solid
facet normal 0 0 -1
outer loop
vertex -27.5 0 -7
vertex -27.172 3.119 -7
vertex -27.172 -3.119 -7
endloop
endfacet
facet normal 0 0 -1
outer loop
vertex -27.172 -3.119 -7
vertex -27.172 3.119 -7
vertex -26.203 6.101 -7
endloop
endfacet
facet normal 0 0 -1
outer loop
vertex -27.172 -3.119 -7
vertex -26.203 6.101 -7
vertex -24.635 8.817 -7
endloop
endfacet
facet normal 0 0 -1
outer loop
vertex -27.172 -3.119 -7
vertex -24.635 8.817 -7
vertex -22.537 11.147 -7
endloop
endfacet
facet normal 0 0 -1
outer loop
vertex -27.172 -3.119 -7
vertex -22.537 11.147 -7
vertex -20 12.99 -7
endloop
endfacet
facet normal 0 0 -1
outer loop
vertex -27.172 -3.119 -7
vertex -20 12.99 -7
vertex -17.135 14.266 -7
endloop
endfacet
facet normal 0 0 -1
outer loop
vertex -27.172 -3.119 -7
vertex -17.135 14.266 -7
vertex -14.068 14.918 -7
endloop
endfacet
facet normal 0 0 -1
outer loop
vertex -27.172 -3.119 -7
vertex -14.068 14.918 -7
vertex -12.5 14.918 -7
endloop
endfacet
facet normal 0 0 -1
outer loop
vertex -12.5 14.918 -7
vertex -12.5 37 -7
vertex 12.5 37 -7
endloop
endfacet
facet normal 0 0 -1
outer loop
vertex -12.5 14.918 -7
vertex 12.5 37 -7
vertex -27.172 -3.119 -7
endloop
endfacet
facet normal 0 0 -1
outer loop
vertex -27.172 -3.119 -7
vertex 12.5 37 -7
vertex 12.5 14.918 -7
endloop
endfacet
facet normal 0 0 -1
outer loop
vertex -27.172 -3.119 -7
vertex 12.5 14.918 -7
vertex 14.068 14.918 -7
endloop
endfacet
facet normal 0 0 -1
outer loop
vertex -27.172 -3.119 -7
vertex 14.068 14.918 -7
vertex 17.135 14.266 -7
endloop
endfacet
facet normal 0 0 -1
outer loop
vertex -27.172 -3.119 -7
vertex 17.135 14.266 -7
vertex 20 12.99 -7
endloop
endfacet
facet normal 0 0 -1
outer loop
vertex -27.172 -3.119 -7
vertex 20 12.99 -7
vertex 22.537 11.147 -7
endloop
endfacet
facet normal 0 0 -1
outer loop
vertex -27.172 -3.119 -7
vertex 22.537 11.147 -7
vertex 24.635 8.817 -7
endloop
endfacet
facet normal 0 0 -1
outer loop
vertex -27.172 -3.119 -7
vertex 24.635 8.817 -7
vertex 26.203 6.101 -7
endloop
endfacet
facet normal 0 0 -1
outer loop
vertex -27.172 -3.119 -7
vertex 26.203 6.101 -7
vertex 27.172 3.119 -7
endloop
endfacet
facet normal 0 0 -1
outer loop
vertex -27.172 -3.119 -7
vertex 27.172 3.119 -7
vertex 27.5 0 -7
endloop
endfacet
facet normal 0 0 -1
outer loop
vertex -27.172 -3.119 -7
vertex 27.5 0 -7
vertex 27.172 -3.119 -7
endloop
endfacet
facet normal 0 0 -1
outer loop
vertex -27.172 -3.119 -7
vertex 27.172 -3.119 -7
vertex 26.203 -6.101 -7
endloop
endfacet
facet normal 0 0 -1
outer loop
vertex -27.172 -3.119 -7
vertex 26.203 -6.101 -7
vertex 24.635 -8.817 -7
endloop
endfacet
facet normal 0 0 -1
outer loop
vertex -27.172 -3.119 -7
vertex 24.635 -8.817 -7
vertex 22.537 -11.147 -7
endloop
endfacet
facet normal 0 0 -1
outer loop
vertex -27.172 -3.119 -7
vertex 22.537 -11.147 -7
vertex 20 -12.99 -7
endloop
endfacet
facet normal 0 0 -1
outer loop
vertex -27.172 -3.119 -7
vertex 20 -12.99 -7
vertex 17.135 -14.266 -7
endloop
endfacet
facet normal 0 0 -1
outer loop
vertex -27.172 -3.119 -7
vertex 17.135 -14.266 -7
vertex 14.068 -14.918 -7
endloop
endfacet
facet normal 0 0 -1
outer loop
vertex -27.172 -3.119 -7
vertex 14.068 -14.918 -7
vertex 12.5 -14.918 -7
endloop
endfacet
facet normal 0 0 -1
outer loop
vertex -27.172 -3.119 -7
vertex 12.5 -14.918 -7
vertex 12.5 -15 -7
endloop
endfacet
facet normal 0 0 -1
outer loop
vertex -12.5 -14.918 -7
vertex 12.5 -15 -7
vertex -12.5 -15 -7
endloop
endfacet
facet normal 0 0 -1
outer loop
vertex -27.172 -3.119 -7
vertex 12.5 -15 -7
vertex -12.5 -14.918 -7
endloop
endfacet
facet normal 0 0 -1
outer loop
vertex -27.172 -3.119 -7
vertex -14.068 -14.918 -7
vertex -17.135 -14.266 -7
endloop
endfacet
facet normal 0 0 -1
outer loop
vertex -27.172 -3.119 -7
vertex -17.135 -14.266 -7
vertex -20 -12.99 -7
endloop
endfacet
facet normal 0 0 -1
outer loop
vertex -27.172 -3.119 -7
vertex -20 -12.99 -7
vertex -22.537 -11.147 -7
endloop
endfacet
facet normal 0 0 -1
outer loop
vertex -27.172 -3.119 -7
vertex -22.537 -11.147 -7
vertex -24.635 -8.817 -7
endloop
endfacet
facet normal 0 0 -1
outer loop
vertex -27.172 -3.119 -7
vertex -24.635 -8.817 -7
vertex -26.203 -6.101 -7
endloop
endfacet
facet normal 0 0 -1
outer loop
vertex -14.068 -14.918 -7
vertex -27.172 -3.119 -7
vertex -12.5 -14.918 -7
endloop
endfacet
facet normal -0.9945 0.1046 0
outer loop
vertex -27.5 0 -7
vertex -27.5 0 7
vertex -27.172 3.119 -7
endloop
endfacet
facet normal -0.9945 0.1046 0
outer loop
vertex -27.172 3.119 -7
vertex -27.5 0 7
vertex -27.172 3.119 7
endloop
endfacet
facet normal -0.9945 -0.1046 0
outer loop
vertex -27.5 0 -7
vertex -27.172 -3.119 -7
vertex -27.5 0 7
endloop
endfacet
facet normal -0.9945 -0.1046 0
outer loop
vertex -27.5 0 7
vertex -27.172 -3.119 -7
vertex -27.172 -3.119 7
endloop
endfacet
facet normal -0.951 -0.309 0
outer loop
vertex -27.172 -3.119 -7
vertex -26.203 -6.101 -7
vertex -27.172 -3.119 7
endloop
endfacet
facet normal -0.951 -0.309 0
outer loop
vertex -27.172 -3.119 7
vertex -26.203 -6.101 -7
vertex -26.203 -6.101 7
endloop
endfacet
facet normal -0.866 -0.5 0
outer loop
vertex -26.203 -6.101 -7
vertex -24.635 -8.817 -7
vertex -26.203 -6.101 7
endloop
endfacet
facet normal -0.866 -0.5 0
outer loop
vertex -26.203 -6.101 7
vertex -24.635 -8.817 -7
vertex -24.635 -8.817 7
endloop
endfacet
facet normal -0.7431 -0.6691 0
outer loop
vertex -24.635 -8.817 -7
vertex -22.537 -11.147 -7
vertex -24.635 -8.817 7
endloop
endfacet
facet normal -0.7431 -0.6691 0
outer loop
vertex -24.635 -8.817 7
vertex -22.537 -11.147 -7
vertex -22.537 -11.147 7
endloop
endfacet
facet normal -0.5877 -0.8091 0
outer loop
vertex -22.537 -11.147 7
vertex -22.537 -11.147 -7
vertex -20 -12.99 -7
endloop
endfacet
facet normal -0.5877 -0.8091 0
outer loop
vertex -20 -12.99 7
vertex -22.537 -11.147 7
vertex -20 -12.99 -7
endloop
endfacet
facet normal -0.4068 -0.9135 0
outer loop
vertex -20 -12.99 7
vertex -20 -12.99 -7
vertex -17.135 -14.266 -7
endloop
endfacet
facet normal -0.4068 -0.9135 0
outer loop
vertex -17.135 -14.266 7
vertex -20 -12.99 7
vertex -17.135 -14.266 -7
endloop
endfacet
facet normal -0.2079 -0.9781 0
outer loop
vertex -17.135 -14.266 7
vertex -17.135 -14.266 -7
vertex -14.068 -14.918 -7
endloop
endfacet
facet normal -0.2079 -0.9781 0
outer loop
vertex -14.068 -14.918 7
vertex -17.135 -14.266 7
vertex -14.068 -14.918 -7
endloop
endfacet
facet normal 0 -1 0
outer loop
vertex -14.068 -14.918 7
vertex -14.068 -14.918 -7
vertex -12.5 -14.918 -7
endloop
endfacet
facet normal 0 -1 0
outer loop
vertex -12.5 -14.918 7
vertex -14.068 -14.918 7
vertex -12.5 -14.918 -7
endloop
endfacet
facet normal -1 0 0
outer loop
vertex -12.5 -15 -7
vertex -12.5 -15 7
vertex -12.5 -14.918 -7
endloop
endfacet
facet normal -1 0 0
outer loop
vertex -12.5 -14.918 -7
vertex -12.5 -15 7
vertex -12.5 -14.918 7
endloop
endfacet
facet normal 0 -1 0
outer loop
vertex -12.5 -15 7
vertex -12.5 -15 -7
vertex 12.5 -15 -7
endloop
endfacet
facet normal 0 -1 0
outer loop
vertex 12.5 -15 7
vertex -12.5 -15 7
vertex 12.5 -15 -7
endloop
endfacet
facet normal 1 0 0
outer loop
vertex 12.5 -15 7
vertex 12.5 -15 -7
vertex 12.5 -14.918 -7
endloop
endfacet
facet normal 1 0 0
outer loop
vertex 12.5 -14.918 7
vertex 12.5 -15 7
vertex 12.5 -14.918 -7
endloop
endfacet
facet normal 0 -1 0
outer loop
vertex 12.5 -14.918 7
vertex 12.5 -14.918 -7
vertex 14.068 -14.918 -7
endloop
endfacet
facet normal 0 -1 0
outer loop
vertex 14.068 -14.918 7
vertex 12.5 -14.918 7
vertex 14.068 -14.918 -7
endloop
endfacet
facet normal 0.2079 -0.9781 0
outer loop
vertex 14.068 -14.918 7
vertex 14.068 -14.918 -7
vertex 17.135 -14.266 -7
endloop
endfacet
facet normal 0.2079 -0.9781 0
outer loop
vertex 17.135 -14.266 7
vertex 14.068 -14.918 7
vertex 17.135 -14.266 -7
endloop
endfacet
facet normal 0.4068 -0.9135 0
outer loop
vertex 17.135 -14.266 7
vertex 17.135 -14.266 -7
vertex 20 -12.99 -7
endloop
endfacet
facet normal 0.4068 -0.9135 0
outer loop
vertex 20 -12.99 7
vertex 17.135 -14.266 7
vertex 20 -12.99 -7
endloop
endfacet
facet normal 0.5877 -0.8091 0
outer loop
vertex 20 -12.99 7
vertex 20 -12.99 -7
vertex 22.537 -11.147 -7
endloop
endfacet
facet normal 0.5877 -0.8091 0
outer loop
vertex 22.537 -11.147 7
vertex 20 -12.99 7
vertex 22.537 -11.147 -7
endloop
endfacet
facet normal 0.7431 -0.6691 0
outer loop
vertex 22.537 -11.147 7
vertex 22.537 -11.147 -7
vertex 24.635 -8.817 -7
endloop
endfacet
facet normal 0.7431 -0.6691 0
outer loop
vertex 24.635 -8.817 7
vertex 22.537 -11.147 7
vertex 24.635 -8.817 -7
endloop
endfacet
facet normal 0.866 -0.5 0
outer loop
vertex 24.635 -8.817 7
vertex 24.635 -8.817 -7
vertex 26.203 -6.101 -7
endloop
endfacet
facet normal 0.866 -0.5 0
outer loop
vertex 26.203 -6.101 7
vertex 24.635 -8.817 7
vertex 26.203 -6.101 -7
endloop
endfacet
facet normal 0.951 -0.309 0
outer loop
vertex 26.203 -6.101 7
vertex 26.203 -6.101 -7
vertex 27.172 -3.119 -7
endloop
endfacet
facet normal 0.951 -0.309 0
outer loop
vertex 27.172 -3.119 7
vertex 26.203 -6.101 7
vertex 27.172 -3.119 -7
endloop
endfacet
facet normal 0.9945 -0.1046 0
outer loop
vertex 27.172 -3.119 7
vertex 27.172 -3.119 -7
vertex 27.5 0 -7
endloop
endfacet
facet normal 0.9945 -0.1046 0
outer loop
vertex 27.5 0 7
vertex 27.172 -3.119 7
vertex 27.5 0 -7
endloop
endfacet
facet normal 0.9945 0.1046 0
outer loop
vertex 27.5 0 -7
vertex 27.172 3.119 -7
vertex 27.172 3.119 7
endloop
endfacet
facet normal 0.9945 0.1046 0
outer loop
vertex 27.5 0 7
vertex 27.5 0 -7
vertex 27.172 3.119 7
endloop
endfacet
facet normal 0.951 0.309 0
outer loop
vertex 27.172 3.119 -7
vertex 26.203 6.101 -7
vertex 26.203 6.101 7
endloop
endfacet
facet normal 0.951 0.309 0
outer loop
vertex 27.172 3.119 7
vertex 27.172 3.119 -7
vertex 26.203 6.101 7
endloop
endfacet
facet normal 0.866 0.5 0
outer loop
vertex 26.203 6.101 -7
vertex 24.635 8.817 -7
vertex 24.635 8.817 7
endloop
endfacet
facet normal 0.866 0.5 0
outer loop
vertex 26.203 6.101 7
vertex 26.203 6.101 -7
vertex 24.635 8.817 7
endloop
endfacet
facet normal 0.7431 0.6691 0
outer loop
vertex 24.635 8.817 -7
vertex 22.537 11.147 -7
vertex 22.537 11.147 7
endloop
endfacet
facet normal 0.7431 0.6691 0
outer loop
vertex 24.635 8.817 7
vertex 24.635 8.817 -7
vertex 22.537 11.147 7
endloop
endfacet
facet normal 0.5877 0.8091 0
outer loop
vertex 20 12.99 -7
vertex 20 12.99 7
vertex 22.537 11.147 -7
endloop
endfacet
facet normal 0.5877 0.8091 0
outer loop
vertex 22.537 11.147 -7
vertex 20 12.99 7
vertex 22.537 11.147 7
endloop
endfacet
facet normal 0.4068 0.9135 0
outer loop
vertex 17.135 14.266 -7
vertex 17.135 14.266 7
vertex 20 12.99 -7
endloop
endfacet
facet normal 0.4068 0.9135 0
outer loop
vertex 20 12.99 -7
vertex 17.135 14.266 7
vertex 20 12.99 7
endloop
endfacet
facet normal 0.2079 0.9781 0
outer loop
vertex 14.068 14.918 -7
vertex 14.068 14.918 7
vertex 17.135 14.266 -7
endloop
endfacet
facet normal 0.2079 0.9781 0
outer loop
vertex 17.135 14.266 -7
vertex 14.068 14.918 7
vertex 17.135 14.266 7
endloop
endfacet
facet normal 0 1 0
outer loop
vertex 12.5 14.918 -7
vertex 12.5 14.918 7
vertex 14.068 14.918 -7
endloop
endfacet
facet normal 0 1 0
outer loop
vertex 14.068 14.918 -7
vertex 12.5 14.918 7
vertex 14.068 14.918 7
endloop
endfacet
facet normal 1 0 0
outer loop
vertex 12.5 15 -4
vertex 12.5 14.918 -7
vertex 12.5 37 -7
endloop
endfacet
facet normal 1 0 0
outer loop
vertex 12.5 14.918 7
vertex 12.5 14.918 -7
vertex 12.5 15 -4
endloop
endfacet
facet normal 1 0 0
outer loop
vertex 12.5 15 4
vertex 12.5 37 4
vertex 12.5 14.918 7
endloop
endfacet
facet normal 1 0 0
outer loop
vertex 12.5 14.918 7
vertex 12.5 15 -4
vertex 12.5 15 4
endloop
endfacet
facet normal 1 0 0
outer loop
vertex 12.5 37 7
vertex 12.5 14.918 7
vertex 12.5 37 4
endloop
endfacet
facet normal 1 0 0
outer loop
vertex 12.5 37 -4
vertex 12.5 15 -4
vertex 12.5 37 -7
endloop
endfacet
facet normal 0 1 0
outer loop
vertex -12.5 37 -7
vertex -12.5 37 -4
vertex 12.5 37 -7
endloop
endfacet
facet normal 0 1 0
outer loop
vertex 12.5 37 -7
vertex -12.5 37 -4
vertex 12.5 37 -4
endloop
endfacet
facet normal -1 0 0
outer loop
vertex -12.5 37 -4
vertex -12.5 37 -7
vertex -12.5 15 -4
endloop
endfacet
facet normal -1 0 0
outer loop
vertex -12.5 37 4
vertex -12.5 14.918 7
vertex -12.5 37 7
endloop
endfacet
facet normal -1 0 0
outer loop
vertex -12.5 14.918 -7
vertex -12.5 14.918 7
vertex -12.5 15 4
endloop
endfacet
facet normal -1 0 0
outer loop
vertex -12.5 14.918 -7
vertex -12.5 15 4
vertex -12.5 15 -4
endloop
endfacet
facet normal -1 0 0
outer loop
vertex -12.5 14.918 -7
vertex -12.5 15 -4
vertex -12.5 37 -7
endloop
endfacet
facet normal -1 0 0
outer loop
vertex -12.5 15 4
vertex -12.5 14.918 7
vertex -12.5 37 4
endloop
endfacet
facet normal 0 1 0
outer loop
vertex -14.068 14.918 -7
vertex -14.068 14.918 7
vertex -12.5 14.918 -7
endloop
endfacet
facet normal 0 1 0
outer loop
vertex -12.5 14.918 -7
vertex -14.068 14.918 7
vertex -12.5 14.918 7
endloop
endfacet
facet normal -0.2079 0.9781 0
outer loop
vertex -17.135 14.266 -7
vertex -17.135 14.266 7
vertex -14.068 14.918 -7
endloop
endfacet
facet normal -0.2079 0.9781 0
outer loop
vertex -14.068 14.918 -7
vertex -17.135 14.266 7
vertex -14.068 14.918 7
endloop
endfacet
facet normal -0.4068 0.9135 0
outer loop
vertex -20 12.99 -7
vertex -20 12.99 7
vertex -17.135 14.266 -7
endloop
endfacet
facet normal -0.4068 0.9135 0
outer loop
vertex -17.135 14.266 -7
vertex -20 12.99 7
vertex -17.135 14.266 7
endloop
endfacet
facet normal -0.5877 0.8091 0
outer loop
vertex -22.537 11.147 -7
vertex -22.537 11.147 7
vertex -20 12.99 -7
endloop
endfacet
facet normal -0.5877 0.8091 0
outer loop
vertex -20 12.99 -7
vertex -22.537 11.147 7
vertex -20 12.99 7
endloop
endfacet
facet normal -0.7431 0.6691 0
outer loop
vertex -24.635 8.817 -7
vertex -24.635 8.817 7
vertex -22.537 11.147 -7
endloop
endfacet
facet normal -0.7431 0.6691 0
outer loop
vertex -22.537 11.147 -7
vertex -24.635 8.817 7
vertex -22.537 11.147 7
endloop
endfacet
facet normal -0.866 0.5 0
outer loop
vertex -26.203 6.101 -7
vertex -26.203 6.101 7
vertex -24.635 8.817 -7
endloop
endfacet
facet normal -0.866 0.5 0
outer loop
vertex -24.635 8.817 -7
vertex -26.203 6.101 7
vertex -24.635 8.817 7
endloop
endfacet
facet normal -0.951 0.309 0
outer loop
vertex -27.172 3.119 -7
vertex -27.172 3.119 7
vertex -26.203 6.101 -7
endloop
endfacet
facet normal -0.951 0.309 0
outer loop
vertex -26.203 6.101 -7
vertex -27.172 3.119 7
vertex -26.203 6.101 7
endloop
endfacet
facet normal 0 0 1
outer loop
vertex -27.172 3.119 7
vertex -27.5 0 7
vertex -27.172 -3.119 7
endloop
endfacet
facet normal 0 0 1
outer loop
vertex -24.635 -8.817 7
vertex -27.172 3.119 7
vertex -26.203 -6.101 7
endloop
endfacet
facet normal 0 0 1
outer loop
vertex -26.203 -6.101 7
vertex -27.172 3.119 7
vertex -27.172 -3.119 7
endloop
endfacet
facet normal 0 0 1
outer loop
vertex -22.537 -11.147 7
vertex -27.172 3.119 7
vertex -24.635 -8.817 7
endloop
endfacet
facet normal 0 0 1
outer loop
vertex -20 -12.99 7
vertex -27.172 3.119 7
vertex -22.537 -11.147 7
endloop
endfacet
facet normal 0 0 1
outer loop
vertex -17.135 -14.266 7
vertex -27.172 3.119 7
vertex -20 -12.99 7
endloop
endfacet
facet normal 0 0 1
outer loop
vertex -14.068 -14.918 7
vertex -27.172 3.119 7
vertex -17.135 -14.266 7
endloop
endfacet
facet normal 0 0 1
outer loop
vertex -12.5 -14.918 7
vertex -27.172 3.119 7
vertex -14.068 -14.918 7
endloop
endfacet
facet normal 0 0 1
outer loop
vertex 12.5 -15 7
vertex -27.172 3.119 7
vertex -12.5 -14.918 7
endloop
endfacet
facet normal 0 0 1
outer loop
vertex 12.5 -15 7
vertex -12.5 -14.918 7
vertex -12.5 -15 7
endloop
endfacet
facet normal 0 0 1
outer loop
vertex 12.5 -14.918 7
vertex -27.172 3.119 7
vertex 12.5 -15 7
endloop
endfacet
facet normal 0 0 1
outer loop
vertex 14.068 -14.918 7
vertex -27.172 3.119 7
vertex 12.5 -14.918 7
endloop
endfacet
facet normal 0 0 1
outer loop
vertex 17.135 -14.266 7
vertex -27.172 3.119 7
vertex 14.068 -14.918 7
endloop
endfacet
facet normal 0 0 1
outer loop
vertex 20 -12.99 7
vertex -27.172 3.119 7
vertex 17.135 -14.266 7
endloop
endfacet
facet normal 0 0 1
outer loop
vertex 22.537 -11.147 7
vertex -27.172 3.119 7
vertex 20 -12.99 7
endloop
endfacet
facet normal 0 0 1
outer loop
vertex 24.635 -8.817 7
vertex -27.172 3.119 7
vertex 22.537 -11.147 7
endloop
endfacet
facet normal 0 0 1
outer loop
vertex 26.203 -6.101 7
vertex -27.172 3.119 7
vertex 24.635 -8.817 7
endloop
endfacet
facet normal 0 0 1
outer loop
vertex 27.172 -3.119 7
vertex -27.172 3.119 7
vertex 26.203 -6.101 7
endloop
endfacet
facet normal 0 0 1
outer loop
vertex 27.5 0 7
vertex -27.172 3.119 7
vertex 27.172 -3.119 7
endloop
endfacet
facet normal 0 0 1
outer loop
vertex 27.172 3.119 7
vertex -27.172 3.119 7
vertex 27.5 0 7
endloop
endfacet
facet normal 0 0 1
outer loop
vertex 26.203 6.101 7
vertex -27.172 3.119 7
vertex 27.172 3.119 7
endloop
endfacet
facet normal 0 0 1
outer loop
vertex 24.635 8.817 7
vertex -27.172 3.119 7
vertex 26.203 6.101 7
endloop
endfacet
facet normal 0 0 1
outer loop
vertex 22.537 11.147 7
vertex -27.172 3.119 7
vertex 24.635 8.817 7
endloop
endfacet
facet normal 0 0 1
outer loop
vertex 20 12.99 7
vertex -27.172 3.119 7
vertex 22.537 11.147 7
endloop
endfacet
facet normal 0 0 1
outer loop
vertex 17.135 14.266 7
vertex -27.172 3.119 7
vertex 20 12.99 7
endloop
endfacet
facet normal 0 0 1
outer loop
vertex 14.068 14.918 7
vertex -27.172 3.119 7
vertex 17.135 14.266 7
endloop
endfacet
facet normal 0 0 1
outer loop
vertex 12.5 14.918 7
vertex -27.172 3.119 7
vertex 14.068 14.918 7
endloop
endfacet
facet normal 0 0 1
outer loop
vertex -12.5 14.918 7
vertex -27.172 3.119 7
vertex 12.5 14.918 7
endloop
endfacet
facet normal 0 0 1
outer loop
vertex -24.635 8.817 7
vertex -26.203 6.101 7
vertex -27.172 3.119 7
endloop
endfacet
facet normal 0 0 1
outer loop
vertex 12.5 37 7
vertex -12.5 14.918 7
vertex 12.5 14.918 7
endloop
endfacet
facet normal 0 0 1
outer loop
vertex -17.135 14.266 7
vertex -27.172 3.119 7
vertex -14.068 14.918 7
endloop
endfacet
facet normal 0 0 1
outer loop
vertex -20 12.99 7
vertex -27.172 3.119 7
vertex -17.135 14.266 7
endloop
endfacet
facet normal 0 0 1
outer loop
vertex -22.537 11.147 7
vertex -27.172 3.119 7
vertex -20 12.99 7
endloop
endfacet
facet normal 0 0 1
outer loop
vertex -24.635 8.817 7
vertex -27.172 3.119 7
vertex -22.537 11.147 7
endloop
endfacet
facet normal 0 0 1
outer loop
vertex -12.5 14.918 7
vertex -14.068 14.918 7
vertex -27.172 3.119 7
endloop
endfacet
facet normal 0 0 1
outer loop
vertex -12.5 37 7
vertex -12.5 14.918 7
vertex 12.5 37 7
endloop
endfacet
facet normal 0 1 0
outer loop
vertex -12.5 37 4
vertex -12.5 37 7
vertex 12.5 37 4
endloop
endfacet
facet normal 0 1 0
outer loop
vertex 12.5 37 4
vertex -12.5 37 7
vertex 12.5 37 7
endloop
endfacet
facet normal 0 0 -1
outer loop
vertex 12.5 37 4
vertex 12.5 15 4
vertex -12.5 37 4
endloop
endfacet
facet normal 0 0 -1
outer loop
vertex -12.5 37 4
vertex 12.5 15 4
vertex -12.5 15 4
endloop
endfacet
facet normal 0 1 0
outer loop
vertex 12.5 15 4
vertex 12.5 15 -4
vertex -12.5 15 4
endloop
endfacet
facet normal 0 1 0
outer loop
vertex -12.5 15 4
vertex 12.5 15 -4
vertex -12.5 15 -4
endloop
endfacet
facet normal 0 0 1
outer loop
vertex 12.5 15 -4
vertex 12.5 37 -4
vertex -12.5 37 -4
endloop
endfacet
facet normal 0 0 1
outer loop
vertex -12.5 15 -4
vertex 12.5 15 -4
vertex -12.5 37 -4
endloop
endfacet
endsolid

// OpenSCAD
// Make a small "key" to open the pump system for a siemens washing machine.

module key() {
       
       
       translate([0,11,0]) cube([25,52,14], center = true);
       translate([12.5,0,0]) cylinder( h = 14, r = 15, center = true );
       translate([-12.5,0,0]) cylinder( h = 14, r = 15, center = true );

}

module cut() {
       translate([0,30,0]) cube([30,30,8], center = true);

}

difference() {
           key();
           cut();
}
